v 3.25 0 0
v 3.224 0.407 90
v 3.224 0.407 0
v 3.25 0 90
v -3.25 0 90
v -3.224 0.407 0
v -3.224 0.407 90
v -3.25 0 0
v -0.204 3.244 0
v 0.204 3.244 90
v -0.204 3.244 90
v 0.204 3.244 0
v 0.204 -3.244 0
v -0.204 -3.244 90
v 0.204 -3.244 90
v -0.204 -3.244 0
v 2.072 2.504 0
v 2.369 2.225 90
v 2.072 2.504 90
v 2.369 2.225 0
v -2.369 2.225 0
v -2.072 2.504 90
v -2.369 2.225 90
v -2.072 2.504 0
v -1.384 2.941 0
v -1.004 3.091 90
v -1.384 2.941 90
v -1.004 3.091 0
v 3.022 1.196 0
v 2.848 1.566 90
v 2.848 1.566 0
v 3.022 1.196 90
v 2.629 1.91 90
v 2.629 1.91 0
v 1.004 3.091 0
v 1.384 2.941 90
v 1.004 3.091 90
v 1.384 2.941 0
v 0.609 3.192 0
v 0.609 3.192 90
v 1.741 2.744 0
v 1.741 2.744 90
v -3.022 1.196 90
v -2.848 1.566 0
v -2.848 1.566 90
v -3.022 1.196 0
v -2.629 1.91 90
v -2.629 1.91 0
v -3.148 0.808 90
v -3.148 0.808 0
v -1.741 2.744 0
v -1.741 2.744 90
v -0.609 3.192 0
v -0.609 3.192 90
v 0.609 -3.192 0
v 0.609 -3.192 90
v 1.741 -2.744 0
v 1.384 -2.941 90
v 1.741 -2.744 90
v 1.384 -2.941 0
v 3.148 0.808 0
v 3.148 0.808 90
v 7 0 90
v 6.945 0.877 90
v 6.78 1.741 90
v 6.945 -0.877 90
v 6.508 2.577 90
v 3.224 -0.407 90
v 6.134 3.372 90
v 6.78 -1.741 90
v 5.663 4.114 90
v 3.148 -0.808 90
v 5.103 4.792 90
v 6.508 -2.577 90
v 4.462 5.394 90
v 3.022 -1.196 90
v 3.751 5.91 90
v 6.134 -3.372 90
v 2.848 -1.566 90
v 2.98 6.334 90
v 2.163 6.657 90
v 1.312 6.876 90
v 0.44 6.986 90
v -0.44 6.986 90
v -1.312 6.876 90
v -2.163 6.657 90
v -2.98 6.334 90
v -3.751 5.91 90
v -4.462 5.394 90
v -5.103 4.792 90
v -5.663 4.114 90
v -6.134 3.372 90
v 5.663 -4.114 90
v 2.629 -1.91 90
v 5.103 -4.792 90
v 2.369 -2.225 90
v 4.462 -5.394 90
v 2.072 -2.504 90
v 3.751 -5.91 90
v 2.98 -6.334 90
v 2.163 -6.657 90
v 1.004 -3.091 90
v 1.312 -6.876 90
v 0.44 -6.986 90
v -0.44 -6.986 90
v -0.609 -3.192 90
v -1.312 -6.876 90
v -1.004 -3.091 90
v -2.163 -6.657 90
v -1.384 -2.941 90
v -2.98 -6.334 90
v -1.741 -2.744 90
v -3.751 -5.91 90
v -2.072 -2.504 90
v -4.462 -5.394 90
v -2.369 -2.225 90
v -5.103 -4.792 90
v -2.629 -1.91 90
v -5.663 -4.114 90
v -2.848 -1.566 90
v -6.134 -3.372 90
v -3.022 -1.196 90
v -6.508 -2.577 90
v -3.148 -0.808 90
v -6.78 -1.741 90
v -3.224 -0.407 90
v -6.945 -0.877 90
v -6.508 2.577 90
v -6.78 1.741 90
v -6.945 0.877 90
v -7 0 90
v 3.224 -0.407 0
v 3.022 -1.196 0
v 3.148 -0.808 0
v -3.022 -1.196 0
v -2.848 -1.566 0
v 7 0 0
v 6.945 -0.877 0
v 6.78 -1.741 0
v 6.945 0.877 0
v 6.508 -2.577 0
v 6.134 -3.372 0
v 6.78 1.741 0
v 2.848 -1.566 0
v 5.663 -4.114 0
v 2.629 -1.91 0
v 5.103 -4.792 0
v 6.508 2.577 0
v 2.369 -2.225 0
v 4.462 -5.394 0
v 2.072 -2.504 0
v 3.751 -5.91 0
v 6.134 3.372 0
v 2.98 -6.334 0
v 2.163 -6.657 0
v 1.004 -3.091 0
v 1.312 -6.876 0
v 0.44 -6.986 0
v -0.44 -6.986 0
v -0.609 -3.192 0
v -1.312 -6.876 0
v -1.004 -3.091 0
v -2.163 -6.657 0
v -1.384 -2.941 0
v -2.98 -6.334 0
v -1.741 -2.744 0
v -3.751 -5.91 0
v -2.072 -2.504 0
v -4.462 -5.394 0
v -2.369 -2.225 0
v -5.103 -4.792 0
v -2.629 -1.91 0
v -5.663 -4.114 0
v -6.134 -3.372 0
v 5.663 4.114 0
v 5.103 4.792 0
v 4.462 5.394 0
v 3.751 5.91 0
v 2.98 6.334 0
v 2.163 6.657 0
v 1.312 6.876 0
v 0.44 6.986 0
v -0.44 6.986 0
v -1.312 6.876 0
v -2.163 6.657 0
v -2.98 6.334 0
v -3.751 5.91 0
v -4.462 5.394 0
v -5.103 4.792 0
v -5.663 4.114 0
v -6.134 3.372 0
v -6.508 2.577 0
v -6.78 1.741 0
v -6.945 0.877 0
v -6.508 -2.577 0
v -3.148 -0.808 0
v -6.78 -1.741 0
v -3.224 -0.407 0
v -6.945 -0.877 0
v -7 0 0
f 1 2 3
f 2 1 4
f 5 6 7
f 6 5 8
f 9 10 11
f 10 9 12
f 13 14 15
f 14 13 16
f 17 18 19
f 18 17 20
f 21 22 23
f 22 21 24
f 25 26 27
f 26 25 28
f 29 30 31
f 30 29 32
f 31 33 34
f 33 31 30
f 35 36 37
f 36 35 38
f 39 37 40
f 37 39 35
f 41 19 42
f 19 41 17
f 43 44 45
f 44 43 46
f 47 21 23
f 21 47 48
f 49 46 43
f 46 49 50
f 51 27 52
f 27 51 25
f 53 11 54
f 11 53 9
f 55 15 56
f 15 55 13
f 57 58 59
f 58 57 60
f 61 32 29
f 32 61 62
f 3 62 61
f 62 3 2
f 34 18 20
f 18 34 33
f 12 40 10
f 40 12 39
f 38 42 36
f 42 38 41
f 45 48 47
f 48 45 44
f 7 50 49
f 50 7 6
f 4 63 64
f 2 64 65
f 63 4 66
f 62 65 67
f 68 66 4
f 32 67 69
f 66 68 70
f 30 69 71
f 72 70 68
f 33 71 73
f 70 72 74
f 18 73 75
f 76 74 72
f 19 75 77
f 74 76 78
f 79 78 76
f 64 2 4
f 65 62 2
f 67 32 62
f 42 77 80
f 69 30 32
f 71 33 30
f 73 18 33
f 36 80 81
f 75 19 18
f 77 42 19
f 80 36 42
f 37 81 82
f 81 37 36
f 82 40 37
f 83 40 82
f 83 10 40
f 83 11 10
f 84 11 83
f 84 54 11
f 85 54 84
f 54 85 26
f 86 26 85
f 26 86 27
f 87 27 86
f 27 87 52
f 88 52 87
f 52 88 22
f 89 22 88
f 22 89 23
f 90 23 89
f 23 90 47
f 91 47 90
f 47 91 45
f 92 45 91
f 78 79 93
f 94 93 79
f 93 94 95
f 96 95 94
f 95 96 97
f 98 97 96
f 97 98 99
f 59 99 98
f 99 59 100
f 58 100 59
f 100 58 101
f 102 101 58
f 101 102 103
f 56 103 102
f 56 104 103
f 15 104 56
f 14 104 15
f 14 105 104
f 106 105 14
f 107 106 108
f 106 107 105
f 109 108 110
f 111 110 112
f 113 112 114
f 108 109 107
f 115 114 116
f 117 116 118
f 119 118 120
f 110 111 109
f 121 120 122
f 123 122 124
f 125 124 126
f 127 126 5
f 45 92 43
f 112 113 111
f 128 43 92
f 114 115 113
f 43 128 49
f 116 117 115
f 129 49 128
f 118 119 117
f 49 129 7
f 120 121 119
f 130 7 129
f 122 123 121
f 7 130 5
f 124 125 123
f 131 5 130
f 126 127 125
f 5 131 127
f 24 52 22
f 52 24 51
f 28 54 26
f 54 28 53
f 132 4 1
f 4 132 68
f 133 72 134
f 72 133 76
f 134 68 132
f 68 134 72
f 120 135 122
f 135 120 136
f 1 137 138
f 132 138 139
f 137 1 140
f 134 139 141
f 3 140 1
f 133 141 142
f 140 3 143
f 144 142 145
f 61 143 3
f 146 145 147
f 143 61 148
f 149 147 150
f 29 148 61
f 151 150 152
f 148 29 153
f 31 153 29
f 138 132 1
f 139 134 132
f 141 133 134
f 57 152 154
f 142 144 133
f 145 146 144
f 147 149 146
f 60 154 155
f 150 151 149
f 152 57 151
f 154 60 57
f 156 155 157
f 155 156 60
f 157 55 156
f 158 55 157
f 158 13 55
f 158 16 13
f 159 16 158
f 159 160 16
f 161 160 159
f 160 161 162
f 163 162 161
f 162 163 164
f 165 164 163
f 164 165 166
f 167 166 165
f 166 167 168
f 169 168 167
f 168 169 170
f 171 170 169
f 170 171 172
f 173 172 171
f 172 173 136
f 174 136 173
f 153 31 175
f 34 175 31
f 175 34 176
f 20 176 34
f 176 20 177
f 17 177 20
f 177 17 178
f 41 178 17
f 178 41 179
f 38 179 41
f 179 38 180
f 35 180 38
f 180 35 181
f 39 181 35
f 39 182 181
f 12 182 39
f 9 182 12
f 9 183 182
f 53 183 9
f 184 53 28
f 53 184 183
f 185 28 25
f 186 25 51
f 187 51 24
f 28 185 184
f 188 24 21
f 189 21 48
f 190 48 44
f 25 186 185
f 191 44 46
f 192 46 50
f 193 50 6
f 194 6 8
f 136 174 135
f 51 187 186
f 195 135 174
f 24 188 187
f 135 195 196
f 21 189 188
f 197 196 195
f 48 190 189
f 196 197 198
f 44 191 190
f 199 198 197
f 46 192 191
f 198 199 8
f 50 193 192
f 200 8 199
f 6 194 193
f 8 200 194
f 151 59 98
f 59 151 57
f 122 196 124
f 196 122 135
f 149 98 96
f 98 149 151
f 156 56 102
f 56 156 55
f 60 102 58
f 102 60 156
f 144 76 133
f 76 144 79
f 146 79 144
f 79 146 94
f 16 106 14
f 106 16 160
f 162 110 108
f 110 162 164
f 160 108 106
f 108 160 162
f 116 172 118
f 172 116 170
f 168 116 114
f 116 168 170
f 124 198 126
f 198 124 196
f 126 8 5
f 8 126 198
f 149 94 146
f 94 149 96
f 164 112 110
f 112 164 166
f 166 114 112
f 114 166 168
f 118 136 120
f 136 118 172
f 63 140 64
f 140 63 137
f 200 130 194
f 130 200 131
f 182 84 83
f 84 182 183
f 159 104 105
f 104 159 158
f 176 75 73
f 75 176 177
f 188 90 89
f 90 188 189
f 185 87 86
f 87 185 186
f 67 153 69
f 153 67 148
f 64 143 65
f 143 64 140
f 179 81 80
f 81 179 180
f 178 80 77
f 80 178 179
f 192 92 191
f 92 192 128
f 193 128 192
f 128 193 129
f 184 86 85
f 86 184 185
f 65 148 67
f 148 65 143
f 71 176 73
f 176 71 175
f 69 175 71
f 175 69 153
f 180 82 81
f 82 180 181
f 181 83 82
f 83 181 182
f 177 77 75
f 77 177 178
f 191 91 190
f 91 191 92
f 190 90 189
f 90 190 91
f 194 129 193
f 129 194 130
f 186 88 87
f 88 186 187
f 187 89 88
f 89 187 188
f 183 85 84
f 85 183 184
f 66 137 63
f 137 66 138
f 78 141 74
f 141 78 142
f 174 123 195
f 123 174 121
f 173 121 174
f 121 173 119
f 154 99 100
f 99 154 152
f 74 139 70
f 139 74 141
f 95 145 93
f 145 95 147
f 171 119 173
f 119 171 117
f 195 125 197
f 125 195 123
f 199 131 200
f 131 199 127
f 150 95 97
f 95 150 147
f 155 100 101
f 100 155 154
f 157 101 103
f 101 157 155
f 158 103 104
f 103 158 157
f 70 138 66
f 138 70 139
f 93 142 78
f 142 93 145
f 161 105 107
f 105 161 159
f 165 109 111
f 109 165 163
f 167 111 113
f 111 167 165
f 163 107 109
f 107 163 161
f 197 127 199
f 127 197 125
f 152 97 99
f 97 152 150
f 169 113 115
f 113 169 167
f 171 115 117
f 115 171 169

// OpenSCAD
$fn = 50;


difference() {
	union() {
		cylinder(h = 90, r = 7.0000000000);
	}
	union() {
		translate(v = [0.0000000000, 0.0000000000, -100.0000000000]) {
			cylinder(h = 200, r = 3.2500000000);
		}
		cylinder(h = 90, r = 1.8000000000);
		cylinder(h = 90, r = 1.8000000000);
		cylinder(h = 90, r = 1.8000000000);
	}
}
